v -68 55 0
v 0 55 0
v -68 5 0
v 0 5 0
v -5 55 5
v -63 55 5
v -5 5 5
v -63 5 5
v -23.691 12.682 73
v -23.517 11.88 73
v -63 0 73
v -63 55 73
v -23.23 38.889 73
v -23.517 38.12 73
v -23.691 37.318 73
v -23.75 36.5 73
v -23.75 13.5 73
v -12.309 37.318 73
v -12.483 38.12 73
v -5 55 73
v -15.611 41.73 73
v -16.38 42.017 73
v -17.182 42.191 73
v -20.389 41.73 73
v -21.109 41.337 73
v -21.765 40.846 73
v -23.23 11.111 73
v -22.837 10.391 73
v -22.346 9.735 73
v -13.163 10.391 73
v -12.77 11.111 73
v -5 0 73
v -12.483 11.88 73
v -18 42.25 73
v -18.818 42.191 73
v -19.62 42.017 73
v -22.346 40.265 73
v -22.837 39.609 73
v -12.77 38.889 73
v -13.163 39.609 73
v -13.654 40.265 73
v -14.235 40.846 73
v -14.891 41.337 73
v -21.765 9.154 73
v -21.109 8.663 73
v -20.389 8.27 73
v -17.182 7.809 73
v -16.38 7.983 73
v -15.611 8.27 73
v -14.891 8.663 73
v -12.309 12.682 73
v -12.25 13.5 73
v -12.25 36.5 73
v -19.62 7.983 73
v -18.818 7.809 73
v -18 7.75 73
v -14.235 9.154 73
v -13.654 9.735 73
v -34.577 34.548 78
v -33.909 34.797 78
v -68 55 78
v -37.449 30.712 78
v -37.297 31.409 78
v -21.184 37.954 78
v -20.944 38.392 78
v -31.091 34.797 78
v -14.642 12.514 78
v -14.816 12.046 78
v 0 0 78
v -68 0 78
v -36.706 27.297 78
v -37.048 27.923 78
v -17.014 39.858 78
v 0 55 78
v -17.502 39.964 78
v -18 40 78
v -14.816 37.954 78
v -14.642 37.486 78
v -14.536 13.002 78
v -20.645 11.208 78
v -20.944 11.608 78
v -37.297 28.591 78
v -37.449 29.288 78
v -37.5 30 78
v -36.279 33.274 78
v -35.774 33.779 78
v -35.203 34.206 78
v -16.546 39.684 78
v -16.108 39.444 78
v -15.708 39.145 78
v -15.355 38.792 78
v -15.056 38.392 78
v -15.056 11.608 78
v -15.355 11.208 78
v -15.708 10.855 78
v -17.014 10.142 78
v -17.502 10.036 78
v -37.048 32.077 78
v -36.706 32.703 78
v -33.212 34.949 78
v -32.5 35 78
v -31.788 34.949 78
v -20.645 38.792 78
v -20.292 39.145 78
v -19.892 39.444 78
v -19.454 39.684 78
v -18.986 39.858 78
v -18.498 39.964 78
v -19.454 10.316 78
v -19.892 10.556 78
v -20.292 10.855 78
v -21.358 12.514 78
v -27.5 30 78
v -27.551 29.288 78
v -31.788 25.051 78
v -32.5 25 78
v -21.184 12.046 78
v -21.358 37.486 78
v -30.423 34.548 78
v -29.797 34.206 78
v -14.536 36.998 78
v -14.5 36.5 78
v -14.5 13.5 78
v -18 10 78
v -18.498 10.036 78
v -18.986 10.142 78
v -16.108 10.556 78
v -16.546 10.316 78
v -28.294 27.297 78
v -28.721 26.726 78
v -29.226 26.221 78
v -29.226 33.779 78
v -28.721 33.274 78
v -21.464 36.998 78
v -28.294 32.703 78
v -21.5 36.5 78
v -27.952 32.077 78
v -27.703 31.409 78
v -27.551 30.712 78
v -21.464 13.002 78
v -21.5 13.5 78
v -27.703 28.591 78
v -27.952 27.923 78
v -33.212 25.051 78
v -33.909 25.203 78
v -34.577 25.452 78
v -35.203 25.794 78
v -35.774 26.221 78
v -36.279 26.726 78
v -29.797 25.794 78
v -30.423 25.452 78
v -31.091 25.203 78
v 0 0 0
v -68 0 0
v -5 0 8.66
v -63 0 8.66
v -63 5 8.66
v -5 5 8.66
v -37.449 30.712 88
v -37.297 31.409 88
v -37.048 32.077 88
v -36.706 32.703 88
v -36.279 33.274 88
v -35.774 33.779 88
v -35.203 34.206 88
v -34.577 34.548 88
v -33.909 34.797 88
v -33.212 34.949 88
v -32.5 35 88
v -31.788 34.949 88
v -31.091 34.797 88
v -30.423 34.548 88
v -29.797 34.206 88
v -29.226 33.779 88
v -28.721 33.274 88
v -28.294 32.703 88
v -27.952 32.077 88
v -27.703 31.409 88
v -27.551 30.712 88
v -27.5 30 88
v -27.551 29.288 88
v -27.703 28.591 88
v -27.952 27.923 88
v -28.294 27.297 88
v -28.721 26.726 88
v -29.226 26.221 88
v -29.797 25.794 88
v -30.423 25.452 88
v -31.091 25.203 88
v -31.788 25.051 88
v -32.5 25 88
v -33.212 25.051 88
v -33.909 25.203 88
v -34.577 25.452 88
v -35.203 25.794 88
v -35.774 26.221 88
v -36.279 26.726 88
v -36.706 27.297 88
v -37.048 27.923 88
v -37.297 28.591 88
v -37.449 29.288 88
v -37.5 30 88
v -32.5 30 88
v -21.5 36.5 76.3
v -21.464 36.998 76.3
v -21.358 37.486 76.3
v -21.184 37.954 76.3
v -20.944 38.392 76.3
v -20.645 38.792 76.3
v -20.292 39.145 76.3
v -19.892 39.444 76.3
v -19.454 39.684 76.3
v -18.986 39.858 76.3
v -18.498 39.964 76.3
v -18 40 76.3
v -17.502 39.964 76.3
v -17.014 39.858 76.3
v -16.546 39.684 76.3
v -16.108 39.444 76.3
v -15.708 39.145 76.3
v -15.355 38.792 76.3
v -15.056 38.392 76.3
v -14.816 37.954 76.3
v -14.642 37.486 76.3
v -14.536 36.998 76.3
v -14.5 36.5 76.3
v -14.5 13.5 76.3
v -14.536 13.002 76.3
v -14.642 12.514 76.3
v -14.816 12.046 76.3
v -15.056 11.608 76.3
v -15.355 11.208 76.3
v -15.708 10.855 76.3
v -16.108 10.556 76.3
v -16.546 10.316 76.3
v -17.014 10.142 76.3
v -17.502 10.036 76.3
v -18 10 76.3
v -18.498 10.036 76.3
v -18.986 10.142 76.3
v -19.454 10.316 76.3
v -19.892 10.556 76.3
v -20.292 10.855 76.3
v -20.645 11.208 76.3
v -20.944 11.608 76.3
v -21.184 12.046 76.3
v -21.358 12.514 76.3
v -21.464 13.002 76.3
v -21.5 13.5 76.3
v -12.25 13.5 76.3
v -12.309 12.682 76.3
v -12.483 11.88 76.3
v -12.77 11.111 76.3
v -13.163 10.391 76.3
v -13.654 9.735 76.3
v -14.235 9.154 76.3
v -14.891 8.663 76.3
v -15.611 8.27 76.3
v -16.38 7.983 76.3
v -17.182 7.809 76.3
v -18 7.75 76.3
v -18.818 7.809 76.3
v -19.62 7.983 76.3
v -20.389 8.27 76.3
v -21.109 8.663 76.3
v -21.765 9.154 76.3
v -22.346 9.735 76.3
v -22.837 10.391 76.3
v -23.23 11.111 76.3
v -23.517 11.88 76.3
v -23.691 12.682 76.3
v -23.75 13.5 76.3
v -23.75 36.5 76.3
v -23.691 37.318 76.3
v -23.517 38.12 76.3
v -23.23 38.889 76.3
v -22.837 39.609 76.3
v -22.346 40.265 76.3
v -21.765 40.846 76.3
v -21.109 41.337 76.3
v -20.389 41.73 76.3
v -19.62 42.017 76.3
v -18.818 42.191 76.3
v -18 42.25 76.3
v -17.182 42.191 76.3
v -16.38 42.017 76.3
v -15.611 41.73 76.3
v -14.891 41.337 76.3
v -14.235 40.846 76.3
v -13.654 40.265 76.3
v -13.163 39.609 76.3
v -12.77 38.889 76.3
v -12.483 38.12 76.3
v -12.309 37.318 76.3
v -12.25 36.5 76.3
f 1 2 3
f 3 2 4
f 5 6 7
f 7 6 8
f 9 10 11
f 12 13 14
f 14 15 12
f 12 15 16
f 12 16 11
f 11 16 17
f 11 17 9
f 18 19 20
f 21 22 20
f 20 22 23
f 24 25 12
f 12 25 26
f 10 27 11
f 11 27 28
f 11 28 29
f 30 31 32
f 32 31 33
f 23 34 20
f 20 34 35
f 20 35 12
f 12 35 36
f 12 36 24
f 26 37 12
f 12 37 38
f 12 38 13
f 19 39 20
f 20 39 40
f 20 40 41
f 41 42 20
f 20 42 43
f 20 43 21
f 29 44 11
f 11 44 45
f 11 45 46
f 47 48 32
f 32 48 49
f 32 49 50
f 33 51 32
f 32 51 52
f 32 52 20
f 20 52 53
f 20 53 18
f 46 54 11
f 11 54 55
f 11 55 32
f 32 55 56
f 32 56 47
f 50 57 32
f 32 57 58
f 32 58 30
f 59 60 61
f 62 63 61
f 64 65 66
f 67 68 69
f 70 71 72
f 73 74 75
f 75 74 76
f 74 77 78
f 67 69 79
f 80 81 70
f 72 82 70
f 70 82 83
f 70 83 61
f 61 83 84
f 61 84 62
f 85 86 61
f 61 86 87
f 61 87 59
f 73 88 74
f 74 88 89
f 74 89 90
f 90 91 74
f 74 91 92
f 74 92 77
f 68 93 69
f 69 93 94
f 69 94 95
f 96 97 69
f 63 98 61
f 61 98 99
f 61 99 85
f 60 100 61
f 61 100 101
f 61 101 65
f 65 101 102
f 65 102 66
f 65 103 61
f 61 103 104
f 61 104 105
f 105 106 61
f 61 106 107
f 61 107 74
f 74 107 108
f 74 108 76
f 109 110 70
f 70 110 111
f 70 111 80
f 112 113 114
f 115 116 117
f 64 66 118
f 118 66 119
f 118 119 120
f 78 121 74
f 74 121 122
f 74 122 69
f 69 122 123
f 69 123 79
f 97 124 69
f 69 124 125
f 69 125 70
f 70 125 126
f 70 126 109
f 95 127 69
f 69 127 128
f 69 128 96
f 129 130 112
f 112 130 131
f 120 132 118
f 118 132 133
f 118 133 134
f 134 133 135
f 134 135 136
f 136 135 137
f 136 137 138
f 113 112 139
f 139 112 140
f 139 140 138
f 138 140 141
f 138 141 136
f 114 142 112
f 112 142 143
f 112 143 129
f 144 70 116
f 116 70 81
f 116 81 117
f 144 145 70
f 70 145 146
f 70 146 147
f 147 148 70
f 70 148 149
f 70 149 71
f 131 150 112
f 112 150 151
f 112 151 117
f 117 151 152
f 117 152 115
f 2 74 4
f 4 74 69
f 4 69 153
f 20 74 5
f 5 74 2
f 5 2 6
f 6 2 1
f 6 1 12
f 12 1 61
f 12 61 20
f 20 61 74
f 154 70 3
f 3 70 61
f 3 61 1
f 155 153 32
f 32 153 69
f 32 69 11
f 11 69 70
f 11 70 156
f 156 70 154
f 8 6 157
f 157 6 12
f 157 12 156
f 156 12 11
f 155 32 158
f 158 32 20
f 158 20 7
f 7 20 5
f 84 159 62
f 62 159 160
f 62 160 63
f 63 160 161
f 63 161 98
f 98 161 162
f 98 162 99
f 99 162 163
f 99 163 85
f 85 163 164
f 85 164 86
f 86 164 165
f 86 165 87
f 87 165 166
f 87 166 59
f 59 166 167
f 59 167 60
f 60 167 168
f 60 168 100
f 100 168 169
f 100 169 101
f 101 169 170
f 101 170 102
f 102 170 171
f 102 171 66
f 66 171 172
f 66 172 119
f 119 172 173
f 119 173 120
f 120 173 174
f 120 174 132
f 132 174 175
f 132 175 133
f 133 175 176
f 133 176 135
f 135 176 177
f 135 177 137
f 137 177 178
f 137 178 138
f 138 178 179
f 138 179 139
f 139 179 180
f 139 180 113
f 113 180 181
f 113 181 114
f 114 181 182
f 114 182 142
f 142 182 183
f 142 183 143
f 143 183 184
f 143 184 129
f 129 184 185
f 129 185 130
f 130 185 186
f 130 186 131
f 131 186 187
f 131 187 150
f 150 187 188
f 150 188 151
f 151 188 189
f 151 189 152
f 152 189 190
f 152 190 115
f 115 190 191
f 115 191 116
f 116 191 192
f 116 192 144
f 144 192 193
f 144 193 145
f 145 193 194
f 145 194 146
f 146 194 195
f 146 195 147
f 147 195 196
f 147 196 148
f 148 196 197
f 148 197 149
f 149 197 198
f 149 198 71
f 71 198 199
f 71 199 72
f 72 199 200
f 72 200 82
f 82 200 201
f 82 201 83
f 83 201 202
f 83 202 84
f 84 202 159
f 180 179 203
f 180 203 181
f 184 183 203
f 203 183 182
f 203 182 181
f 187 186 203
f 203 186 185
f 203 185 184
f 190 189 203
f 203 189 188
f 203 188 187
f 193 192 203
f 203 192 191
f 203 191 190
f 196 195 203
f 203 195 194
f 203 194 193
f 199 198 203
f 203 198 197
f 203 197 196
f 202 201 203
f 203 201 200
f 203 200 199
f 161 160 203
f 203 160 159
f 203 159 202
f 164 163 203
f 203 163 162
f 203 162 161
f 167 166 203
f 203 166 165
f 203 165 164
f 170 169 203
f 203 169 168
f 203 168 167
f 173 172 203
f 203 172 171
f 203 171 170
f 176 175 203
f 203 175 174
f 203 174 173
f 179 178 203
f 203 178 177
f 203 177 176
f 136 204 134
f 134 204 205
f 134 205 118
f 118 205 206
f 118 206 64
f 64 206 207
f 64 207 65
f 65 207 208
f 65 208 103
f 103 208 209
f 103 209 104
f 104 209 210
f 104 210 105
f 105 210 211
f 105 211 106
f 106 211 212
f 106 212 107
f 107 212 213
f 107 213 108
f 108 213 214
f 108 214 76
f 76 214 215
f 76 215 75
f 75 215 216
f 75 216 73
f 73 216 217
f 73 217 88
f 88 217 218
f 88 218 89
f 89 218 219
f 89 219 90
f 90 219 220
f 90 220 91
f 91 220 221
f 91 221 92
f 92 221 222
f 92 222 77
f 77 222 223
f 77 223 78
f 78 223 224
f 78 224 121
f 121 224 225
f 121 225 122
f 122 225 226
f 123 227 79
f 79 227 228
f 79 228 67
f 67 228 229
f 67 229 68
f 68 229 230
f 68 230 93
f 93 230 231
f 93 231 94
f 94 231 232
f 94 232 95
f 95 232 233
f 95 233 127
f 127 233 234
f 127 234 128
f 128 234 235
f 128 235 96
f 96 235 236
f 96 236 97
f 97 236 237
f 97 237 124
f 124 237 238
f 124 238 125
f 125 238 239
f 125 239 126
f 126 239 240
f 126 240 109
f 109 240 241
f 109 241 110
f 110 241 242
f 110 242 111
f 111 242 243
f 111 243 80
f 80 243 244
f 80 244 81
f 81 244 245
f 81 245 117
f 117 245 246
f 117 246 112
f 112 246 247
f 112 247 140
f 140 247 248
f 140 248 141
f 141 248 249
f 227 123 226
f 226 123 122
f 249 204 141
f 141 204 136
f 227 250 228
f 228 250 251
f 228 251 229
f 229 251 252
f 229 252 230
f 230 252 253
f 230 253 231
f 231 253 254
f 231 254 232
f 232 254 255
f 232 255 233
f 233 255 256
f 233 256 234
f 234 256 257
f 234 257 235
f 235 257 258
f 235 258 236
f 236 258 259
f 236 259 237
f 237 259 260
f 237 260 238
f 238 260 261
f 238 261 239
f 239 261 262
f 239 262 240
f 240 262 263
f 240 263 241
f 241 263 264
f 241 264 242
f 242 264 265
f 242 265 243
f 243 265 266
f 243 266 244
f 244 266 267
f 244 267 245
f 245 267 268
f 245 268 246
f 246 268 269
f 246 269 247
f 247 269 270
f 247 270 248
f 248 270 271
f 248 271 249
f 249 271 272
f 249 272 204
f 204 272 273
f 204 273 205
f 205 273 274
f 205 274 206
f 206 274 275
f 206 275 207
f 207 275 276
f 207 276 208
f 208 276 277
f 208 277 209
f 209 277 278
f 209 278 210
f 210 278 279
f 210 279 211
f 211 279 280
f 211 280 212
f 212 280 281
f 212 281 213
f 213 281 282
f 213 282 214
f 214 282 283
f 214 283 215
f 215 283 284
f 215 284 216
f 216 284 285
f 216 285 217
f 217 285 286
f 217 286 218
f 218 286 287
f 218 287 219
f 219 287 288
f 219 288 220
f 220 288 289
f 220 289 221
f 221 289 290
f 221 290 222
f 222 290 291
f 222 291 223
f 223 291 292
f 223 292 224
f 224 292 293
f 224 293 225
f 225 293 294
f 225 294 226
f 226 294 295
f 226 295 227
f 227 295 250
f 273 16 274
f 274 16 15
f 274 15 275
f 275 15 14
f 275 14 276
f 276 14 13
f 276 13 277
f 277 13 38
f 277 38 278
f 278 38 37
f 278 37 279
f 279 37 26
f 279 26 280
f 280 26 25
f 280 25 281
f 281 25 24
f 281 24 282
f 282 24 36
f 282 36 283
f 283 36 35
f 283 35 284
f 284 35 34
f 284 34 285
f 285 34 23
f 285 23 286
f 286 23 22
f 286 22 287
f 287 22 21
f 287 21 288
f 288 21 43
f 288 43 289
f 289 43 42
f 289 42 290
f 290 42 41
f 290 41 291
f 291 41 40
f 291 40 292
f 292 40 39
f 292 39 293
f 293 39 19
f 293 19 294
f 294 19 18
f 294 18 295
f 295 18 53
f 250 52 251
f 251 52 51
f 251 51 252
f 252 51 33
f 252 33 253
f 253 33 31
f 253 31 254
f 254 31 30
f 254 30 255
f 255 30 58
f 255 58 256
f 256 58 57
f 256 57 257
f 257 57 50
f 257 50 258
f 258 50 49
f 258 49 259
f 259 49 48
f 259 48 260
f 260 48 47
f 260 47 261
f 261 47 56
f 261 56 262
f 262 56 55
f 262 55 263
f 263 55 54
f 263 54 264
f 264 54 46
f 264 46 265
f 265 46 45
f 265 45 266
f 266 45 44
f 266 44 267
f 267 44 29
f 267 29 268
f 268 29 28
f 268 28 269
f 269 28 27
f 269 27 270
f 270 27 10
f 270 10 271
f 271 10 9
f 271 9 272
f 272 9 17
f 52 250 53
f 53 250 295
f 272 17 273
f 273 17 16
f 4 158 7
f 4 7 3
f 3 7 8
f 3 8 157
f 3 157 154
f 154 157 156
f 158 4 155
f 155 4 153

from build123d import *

# Parameters (mm, degrees)
SKIZZE1_W                                      = 68
SKIZZE1_H                                      = 55
AUFSATZ_LINEAR_AUSTRAGEN1_DEPTH                = 78
SKIZZE2_W                                      = 58
SKIZZE2_H                                      = 68
SCHNITT_LINEAR_AUSTRAGEN1_DEPTH                = 118.187883333
SKIZZE3_R                                      = 5
AUFSATZ_LINEAR_AUSTRAGEN2_DEPTH                = 10
STIRNSENKUNG_START                             = 73
STIRNSENKUNG_LANGLOCH_F_R_M6_SENKSCHRAUB_DEPTH = 3.3
STIRNSENKUNG_START_2                           = 76.3
STIRNSENKUNG_LANGLOCH_F_R_M6_SENKSCH_3_DEPTH   = 1.7
SCHNITT_LINEAR_AUSTRAGEN2_DEPTH                = 5


# Read off the part's stored shape, not the designer's step: Stirnsenkung Langloch für M6 Senkschraube (Kopf Button)1
with BuildPart() as part:
    # Skizze1 → Aufsatz-Linear austragen1 (new body)
    with BuildSketch(Plane.XY):
        with Locations((-34, 27.5)):
            Rectangle(SKIZZE1_W, SKIZZE1_H)
    extrude(amount=AUFSATZ_LINEAR_AUSTRAGEN1_DEPTH)

    # Skizze2 → Schnitt-Linear austragen1 (cut, through all)
    with BuildSketch(Plane(origin=(0, 55, 0), x_dir=(1, 0, 0), z_dir=(0, 1, 0))):
        with Locations((-34, -39)):
            Rectangle(SKIZZE2_W, SKIZZE2_H)
    extrude(amount=-SCHNITT_LINEAR_AUSTRAGEN1_DEPTH, mode=Mode.SUBTRACT)

    # Skizze3 → Aufsatz-Linear austragen2 (add)
    with BuildSketch(Plane.XY.offset(78)):
        with Locations((-32.5, 30)):
            Circle(SKIZZE3_R)
    extrude(amount=AUFSATZ_LINEAR_AUSTRAGEN2_DEPTH)

    # Stirnsenkung Langloch f_r M6 Senksch 2 → Stirnsenkung Langloch für M6 Senkschraube (Kopf Button)1 (cut)
    with BuildSketch(Plane.XY.offset(STIRNSENKUNG_START)):
        with BuildLine():
            ThreePointArc((-12.25, 36.5), (-18, 42.25), (-23.75, 36.5))
            Line((-23.75, 36.5), (-23.75, 13.5))
            ThreePointArc((-23.75, 13.5), (-18, 7.75), (-12.25, 13.5))
            Line((-12.25, 13.5), (-12.25, 36.5))
        make_face()
    extrude(amount=STIRNSENKUNG_LANGLOCH_F_R_M6_SENKSCHRAUB_DEPTH, mode=Mode.SUBTRACT)

    # Stirnsenkung Langloch f_r M6 Senksch 3 o → Stirnsenkung Langloch f_r M6 Senksch 3 (cut)
    with BuildSketch(Plane.XY.offset(STIRNSENKUNG_START_2)):
        with BuildLine():
            ThreePointArc((-14.5, 36.5), (-18, 40), (-21.5, 36.5))
            Line((-21.5, 36.5), (-21.5, 13.5))
            ThreePointArc((-21.5, 13.5), (-18, 10), (-14.5, 13.5))
            Line((-14.5, 13.5), (-14.5, 36.5))
        make_face()
    extrude(amount=STIRNSENKUNG_LANGLOCH_F_R_M6_SENKSCH_3_DEPTH, mode=Mode.SUBTRACT)

    # Skizze15 → Schnitt-Linear austragen2 (cut)
    with BuildSketch(Plane.XZ):
        Polygon((0, 0), (-5, 8.660254038), (-63, 8.660254038), (-68, 0), align=None)
    extrude(amount=-SCHNITT_LINEAR_AUSTRAGEN2_DEPTH, mode=Mode.SUBTRACT)


solid = part.part
